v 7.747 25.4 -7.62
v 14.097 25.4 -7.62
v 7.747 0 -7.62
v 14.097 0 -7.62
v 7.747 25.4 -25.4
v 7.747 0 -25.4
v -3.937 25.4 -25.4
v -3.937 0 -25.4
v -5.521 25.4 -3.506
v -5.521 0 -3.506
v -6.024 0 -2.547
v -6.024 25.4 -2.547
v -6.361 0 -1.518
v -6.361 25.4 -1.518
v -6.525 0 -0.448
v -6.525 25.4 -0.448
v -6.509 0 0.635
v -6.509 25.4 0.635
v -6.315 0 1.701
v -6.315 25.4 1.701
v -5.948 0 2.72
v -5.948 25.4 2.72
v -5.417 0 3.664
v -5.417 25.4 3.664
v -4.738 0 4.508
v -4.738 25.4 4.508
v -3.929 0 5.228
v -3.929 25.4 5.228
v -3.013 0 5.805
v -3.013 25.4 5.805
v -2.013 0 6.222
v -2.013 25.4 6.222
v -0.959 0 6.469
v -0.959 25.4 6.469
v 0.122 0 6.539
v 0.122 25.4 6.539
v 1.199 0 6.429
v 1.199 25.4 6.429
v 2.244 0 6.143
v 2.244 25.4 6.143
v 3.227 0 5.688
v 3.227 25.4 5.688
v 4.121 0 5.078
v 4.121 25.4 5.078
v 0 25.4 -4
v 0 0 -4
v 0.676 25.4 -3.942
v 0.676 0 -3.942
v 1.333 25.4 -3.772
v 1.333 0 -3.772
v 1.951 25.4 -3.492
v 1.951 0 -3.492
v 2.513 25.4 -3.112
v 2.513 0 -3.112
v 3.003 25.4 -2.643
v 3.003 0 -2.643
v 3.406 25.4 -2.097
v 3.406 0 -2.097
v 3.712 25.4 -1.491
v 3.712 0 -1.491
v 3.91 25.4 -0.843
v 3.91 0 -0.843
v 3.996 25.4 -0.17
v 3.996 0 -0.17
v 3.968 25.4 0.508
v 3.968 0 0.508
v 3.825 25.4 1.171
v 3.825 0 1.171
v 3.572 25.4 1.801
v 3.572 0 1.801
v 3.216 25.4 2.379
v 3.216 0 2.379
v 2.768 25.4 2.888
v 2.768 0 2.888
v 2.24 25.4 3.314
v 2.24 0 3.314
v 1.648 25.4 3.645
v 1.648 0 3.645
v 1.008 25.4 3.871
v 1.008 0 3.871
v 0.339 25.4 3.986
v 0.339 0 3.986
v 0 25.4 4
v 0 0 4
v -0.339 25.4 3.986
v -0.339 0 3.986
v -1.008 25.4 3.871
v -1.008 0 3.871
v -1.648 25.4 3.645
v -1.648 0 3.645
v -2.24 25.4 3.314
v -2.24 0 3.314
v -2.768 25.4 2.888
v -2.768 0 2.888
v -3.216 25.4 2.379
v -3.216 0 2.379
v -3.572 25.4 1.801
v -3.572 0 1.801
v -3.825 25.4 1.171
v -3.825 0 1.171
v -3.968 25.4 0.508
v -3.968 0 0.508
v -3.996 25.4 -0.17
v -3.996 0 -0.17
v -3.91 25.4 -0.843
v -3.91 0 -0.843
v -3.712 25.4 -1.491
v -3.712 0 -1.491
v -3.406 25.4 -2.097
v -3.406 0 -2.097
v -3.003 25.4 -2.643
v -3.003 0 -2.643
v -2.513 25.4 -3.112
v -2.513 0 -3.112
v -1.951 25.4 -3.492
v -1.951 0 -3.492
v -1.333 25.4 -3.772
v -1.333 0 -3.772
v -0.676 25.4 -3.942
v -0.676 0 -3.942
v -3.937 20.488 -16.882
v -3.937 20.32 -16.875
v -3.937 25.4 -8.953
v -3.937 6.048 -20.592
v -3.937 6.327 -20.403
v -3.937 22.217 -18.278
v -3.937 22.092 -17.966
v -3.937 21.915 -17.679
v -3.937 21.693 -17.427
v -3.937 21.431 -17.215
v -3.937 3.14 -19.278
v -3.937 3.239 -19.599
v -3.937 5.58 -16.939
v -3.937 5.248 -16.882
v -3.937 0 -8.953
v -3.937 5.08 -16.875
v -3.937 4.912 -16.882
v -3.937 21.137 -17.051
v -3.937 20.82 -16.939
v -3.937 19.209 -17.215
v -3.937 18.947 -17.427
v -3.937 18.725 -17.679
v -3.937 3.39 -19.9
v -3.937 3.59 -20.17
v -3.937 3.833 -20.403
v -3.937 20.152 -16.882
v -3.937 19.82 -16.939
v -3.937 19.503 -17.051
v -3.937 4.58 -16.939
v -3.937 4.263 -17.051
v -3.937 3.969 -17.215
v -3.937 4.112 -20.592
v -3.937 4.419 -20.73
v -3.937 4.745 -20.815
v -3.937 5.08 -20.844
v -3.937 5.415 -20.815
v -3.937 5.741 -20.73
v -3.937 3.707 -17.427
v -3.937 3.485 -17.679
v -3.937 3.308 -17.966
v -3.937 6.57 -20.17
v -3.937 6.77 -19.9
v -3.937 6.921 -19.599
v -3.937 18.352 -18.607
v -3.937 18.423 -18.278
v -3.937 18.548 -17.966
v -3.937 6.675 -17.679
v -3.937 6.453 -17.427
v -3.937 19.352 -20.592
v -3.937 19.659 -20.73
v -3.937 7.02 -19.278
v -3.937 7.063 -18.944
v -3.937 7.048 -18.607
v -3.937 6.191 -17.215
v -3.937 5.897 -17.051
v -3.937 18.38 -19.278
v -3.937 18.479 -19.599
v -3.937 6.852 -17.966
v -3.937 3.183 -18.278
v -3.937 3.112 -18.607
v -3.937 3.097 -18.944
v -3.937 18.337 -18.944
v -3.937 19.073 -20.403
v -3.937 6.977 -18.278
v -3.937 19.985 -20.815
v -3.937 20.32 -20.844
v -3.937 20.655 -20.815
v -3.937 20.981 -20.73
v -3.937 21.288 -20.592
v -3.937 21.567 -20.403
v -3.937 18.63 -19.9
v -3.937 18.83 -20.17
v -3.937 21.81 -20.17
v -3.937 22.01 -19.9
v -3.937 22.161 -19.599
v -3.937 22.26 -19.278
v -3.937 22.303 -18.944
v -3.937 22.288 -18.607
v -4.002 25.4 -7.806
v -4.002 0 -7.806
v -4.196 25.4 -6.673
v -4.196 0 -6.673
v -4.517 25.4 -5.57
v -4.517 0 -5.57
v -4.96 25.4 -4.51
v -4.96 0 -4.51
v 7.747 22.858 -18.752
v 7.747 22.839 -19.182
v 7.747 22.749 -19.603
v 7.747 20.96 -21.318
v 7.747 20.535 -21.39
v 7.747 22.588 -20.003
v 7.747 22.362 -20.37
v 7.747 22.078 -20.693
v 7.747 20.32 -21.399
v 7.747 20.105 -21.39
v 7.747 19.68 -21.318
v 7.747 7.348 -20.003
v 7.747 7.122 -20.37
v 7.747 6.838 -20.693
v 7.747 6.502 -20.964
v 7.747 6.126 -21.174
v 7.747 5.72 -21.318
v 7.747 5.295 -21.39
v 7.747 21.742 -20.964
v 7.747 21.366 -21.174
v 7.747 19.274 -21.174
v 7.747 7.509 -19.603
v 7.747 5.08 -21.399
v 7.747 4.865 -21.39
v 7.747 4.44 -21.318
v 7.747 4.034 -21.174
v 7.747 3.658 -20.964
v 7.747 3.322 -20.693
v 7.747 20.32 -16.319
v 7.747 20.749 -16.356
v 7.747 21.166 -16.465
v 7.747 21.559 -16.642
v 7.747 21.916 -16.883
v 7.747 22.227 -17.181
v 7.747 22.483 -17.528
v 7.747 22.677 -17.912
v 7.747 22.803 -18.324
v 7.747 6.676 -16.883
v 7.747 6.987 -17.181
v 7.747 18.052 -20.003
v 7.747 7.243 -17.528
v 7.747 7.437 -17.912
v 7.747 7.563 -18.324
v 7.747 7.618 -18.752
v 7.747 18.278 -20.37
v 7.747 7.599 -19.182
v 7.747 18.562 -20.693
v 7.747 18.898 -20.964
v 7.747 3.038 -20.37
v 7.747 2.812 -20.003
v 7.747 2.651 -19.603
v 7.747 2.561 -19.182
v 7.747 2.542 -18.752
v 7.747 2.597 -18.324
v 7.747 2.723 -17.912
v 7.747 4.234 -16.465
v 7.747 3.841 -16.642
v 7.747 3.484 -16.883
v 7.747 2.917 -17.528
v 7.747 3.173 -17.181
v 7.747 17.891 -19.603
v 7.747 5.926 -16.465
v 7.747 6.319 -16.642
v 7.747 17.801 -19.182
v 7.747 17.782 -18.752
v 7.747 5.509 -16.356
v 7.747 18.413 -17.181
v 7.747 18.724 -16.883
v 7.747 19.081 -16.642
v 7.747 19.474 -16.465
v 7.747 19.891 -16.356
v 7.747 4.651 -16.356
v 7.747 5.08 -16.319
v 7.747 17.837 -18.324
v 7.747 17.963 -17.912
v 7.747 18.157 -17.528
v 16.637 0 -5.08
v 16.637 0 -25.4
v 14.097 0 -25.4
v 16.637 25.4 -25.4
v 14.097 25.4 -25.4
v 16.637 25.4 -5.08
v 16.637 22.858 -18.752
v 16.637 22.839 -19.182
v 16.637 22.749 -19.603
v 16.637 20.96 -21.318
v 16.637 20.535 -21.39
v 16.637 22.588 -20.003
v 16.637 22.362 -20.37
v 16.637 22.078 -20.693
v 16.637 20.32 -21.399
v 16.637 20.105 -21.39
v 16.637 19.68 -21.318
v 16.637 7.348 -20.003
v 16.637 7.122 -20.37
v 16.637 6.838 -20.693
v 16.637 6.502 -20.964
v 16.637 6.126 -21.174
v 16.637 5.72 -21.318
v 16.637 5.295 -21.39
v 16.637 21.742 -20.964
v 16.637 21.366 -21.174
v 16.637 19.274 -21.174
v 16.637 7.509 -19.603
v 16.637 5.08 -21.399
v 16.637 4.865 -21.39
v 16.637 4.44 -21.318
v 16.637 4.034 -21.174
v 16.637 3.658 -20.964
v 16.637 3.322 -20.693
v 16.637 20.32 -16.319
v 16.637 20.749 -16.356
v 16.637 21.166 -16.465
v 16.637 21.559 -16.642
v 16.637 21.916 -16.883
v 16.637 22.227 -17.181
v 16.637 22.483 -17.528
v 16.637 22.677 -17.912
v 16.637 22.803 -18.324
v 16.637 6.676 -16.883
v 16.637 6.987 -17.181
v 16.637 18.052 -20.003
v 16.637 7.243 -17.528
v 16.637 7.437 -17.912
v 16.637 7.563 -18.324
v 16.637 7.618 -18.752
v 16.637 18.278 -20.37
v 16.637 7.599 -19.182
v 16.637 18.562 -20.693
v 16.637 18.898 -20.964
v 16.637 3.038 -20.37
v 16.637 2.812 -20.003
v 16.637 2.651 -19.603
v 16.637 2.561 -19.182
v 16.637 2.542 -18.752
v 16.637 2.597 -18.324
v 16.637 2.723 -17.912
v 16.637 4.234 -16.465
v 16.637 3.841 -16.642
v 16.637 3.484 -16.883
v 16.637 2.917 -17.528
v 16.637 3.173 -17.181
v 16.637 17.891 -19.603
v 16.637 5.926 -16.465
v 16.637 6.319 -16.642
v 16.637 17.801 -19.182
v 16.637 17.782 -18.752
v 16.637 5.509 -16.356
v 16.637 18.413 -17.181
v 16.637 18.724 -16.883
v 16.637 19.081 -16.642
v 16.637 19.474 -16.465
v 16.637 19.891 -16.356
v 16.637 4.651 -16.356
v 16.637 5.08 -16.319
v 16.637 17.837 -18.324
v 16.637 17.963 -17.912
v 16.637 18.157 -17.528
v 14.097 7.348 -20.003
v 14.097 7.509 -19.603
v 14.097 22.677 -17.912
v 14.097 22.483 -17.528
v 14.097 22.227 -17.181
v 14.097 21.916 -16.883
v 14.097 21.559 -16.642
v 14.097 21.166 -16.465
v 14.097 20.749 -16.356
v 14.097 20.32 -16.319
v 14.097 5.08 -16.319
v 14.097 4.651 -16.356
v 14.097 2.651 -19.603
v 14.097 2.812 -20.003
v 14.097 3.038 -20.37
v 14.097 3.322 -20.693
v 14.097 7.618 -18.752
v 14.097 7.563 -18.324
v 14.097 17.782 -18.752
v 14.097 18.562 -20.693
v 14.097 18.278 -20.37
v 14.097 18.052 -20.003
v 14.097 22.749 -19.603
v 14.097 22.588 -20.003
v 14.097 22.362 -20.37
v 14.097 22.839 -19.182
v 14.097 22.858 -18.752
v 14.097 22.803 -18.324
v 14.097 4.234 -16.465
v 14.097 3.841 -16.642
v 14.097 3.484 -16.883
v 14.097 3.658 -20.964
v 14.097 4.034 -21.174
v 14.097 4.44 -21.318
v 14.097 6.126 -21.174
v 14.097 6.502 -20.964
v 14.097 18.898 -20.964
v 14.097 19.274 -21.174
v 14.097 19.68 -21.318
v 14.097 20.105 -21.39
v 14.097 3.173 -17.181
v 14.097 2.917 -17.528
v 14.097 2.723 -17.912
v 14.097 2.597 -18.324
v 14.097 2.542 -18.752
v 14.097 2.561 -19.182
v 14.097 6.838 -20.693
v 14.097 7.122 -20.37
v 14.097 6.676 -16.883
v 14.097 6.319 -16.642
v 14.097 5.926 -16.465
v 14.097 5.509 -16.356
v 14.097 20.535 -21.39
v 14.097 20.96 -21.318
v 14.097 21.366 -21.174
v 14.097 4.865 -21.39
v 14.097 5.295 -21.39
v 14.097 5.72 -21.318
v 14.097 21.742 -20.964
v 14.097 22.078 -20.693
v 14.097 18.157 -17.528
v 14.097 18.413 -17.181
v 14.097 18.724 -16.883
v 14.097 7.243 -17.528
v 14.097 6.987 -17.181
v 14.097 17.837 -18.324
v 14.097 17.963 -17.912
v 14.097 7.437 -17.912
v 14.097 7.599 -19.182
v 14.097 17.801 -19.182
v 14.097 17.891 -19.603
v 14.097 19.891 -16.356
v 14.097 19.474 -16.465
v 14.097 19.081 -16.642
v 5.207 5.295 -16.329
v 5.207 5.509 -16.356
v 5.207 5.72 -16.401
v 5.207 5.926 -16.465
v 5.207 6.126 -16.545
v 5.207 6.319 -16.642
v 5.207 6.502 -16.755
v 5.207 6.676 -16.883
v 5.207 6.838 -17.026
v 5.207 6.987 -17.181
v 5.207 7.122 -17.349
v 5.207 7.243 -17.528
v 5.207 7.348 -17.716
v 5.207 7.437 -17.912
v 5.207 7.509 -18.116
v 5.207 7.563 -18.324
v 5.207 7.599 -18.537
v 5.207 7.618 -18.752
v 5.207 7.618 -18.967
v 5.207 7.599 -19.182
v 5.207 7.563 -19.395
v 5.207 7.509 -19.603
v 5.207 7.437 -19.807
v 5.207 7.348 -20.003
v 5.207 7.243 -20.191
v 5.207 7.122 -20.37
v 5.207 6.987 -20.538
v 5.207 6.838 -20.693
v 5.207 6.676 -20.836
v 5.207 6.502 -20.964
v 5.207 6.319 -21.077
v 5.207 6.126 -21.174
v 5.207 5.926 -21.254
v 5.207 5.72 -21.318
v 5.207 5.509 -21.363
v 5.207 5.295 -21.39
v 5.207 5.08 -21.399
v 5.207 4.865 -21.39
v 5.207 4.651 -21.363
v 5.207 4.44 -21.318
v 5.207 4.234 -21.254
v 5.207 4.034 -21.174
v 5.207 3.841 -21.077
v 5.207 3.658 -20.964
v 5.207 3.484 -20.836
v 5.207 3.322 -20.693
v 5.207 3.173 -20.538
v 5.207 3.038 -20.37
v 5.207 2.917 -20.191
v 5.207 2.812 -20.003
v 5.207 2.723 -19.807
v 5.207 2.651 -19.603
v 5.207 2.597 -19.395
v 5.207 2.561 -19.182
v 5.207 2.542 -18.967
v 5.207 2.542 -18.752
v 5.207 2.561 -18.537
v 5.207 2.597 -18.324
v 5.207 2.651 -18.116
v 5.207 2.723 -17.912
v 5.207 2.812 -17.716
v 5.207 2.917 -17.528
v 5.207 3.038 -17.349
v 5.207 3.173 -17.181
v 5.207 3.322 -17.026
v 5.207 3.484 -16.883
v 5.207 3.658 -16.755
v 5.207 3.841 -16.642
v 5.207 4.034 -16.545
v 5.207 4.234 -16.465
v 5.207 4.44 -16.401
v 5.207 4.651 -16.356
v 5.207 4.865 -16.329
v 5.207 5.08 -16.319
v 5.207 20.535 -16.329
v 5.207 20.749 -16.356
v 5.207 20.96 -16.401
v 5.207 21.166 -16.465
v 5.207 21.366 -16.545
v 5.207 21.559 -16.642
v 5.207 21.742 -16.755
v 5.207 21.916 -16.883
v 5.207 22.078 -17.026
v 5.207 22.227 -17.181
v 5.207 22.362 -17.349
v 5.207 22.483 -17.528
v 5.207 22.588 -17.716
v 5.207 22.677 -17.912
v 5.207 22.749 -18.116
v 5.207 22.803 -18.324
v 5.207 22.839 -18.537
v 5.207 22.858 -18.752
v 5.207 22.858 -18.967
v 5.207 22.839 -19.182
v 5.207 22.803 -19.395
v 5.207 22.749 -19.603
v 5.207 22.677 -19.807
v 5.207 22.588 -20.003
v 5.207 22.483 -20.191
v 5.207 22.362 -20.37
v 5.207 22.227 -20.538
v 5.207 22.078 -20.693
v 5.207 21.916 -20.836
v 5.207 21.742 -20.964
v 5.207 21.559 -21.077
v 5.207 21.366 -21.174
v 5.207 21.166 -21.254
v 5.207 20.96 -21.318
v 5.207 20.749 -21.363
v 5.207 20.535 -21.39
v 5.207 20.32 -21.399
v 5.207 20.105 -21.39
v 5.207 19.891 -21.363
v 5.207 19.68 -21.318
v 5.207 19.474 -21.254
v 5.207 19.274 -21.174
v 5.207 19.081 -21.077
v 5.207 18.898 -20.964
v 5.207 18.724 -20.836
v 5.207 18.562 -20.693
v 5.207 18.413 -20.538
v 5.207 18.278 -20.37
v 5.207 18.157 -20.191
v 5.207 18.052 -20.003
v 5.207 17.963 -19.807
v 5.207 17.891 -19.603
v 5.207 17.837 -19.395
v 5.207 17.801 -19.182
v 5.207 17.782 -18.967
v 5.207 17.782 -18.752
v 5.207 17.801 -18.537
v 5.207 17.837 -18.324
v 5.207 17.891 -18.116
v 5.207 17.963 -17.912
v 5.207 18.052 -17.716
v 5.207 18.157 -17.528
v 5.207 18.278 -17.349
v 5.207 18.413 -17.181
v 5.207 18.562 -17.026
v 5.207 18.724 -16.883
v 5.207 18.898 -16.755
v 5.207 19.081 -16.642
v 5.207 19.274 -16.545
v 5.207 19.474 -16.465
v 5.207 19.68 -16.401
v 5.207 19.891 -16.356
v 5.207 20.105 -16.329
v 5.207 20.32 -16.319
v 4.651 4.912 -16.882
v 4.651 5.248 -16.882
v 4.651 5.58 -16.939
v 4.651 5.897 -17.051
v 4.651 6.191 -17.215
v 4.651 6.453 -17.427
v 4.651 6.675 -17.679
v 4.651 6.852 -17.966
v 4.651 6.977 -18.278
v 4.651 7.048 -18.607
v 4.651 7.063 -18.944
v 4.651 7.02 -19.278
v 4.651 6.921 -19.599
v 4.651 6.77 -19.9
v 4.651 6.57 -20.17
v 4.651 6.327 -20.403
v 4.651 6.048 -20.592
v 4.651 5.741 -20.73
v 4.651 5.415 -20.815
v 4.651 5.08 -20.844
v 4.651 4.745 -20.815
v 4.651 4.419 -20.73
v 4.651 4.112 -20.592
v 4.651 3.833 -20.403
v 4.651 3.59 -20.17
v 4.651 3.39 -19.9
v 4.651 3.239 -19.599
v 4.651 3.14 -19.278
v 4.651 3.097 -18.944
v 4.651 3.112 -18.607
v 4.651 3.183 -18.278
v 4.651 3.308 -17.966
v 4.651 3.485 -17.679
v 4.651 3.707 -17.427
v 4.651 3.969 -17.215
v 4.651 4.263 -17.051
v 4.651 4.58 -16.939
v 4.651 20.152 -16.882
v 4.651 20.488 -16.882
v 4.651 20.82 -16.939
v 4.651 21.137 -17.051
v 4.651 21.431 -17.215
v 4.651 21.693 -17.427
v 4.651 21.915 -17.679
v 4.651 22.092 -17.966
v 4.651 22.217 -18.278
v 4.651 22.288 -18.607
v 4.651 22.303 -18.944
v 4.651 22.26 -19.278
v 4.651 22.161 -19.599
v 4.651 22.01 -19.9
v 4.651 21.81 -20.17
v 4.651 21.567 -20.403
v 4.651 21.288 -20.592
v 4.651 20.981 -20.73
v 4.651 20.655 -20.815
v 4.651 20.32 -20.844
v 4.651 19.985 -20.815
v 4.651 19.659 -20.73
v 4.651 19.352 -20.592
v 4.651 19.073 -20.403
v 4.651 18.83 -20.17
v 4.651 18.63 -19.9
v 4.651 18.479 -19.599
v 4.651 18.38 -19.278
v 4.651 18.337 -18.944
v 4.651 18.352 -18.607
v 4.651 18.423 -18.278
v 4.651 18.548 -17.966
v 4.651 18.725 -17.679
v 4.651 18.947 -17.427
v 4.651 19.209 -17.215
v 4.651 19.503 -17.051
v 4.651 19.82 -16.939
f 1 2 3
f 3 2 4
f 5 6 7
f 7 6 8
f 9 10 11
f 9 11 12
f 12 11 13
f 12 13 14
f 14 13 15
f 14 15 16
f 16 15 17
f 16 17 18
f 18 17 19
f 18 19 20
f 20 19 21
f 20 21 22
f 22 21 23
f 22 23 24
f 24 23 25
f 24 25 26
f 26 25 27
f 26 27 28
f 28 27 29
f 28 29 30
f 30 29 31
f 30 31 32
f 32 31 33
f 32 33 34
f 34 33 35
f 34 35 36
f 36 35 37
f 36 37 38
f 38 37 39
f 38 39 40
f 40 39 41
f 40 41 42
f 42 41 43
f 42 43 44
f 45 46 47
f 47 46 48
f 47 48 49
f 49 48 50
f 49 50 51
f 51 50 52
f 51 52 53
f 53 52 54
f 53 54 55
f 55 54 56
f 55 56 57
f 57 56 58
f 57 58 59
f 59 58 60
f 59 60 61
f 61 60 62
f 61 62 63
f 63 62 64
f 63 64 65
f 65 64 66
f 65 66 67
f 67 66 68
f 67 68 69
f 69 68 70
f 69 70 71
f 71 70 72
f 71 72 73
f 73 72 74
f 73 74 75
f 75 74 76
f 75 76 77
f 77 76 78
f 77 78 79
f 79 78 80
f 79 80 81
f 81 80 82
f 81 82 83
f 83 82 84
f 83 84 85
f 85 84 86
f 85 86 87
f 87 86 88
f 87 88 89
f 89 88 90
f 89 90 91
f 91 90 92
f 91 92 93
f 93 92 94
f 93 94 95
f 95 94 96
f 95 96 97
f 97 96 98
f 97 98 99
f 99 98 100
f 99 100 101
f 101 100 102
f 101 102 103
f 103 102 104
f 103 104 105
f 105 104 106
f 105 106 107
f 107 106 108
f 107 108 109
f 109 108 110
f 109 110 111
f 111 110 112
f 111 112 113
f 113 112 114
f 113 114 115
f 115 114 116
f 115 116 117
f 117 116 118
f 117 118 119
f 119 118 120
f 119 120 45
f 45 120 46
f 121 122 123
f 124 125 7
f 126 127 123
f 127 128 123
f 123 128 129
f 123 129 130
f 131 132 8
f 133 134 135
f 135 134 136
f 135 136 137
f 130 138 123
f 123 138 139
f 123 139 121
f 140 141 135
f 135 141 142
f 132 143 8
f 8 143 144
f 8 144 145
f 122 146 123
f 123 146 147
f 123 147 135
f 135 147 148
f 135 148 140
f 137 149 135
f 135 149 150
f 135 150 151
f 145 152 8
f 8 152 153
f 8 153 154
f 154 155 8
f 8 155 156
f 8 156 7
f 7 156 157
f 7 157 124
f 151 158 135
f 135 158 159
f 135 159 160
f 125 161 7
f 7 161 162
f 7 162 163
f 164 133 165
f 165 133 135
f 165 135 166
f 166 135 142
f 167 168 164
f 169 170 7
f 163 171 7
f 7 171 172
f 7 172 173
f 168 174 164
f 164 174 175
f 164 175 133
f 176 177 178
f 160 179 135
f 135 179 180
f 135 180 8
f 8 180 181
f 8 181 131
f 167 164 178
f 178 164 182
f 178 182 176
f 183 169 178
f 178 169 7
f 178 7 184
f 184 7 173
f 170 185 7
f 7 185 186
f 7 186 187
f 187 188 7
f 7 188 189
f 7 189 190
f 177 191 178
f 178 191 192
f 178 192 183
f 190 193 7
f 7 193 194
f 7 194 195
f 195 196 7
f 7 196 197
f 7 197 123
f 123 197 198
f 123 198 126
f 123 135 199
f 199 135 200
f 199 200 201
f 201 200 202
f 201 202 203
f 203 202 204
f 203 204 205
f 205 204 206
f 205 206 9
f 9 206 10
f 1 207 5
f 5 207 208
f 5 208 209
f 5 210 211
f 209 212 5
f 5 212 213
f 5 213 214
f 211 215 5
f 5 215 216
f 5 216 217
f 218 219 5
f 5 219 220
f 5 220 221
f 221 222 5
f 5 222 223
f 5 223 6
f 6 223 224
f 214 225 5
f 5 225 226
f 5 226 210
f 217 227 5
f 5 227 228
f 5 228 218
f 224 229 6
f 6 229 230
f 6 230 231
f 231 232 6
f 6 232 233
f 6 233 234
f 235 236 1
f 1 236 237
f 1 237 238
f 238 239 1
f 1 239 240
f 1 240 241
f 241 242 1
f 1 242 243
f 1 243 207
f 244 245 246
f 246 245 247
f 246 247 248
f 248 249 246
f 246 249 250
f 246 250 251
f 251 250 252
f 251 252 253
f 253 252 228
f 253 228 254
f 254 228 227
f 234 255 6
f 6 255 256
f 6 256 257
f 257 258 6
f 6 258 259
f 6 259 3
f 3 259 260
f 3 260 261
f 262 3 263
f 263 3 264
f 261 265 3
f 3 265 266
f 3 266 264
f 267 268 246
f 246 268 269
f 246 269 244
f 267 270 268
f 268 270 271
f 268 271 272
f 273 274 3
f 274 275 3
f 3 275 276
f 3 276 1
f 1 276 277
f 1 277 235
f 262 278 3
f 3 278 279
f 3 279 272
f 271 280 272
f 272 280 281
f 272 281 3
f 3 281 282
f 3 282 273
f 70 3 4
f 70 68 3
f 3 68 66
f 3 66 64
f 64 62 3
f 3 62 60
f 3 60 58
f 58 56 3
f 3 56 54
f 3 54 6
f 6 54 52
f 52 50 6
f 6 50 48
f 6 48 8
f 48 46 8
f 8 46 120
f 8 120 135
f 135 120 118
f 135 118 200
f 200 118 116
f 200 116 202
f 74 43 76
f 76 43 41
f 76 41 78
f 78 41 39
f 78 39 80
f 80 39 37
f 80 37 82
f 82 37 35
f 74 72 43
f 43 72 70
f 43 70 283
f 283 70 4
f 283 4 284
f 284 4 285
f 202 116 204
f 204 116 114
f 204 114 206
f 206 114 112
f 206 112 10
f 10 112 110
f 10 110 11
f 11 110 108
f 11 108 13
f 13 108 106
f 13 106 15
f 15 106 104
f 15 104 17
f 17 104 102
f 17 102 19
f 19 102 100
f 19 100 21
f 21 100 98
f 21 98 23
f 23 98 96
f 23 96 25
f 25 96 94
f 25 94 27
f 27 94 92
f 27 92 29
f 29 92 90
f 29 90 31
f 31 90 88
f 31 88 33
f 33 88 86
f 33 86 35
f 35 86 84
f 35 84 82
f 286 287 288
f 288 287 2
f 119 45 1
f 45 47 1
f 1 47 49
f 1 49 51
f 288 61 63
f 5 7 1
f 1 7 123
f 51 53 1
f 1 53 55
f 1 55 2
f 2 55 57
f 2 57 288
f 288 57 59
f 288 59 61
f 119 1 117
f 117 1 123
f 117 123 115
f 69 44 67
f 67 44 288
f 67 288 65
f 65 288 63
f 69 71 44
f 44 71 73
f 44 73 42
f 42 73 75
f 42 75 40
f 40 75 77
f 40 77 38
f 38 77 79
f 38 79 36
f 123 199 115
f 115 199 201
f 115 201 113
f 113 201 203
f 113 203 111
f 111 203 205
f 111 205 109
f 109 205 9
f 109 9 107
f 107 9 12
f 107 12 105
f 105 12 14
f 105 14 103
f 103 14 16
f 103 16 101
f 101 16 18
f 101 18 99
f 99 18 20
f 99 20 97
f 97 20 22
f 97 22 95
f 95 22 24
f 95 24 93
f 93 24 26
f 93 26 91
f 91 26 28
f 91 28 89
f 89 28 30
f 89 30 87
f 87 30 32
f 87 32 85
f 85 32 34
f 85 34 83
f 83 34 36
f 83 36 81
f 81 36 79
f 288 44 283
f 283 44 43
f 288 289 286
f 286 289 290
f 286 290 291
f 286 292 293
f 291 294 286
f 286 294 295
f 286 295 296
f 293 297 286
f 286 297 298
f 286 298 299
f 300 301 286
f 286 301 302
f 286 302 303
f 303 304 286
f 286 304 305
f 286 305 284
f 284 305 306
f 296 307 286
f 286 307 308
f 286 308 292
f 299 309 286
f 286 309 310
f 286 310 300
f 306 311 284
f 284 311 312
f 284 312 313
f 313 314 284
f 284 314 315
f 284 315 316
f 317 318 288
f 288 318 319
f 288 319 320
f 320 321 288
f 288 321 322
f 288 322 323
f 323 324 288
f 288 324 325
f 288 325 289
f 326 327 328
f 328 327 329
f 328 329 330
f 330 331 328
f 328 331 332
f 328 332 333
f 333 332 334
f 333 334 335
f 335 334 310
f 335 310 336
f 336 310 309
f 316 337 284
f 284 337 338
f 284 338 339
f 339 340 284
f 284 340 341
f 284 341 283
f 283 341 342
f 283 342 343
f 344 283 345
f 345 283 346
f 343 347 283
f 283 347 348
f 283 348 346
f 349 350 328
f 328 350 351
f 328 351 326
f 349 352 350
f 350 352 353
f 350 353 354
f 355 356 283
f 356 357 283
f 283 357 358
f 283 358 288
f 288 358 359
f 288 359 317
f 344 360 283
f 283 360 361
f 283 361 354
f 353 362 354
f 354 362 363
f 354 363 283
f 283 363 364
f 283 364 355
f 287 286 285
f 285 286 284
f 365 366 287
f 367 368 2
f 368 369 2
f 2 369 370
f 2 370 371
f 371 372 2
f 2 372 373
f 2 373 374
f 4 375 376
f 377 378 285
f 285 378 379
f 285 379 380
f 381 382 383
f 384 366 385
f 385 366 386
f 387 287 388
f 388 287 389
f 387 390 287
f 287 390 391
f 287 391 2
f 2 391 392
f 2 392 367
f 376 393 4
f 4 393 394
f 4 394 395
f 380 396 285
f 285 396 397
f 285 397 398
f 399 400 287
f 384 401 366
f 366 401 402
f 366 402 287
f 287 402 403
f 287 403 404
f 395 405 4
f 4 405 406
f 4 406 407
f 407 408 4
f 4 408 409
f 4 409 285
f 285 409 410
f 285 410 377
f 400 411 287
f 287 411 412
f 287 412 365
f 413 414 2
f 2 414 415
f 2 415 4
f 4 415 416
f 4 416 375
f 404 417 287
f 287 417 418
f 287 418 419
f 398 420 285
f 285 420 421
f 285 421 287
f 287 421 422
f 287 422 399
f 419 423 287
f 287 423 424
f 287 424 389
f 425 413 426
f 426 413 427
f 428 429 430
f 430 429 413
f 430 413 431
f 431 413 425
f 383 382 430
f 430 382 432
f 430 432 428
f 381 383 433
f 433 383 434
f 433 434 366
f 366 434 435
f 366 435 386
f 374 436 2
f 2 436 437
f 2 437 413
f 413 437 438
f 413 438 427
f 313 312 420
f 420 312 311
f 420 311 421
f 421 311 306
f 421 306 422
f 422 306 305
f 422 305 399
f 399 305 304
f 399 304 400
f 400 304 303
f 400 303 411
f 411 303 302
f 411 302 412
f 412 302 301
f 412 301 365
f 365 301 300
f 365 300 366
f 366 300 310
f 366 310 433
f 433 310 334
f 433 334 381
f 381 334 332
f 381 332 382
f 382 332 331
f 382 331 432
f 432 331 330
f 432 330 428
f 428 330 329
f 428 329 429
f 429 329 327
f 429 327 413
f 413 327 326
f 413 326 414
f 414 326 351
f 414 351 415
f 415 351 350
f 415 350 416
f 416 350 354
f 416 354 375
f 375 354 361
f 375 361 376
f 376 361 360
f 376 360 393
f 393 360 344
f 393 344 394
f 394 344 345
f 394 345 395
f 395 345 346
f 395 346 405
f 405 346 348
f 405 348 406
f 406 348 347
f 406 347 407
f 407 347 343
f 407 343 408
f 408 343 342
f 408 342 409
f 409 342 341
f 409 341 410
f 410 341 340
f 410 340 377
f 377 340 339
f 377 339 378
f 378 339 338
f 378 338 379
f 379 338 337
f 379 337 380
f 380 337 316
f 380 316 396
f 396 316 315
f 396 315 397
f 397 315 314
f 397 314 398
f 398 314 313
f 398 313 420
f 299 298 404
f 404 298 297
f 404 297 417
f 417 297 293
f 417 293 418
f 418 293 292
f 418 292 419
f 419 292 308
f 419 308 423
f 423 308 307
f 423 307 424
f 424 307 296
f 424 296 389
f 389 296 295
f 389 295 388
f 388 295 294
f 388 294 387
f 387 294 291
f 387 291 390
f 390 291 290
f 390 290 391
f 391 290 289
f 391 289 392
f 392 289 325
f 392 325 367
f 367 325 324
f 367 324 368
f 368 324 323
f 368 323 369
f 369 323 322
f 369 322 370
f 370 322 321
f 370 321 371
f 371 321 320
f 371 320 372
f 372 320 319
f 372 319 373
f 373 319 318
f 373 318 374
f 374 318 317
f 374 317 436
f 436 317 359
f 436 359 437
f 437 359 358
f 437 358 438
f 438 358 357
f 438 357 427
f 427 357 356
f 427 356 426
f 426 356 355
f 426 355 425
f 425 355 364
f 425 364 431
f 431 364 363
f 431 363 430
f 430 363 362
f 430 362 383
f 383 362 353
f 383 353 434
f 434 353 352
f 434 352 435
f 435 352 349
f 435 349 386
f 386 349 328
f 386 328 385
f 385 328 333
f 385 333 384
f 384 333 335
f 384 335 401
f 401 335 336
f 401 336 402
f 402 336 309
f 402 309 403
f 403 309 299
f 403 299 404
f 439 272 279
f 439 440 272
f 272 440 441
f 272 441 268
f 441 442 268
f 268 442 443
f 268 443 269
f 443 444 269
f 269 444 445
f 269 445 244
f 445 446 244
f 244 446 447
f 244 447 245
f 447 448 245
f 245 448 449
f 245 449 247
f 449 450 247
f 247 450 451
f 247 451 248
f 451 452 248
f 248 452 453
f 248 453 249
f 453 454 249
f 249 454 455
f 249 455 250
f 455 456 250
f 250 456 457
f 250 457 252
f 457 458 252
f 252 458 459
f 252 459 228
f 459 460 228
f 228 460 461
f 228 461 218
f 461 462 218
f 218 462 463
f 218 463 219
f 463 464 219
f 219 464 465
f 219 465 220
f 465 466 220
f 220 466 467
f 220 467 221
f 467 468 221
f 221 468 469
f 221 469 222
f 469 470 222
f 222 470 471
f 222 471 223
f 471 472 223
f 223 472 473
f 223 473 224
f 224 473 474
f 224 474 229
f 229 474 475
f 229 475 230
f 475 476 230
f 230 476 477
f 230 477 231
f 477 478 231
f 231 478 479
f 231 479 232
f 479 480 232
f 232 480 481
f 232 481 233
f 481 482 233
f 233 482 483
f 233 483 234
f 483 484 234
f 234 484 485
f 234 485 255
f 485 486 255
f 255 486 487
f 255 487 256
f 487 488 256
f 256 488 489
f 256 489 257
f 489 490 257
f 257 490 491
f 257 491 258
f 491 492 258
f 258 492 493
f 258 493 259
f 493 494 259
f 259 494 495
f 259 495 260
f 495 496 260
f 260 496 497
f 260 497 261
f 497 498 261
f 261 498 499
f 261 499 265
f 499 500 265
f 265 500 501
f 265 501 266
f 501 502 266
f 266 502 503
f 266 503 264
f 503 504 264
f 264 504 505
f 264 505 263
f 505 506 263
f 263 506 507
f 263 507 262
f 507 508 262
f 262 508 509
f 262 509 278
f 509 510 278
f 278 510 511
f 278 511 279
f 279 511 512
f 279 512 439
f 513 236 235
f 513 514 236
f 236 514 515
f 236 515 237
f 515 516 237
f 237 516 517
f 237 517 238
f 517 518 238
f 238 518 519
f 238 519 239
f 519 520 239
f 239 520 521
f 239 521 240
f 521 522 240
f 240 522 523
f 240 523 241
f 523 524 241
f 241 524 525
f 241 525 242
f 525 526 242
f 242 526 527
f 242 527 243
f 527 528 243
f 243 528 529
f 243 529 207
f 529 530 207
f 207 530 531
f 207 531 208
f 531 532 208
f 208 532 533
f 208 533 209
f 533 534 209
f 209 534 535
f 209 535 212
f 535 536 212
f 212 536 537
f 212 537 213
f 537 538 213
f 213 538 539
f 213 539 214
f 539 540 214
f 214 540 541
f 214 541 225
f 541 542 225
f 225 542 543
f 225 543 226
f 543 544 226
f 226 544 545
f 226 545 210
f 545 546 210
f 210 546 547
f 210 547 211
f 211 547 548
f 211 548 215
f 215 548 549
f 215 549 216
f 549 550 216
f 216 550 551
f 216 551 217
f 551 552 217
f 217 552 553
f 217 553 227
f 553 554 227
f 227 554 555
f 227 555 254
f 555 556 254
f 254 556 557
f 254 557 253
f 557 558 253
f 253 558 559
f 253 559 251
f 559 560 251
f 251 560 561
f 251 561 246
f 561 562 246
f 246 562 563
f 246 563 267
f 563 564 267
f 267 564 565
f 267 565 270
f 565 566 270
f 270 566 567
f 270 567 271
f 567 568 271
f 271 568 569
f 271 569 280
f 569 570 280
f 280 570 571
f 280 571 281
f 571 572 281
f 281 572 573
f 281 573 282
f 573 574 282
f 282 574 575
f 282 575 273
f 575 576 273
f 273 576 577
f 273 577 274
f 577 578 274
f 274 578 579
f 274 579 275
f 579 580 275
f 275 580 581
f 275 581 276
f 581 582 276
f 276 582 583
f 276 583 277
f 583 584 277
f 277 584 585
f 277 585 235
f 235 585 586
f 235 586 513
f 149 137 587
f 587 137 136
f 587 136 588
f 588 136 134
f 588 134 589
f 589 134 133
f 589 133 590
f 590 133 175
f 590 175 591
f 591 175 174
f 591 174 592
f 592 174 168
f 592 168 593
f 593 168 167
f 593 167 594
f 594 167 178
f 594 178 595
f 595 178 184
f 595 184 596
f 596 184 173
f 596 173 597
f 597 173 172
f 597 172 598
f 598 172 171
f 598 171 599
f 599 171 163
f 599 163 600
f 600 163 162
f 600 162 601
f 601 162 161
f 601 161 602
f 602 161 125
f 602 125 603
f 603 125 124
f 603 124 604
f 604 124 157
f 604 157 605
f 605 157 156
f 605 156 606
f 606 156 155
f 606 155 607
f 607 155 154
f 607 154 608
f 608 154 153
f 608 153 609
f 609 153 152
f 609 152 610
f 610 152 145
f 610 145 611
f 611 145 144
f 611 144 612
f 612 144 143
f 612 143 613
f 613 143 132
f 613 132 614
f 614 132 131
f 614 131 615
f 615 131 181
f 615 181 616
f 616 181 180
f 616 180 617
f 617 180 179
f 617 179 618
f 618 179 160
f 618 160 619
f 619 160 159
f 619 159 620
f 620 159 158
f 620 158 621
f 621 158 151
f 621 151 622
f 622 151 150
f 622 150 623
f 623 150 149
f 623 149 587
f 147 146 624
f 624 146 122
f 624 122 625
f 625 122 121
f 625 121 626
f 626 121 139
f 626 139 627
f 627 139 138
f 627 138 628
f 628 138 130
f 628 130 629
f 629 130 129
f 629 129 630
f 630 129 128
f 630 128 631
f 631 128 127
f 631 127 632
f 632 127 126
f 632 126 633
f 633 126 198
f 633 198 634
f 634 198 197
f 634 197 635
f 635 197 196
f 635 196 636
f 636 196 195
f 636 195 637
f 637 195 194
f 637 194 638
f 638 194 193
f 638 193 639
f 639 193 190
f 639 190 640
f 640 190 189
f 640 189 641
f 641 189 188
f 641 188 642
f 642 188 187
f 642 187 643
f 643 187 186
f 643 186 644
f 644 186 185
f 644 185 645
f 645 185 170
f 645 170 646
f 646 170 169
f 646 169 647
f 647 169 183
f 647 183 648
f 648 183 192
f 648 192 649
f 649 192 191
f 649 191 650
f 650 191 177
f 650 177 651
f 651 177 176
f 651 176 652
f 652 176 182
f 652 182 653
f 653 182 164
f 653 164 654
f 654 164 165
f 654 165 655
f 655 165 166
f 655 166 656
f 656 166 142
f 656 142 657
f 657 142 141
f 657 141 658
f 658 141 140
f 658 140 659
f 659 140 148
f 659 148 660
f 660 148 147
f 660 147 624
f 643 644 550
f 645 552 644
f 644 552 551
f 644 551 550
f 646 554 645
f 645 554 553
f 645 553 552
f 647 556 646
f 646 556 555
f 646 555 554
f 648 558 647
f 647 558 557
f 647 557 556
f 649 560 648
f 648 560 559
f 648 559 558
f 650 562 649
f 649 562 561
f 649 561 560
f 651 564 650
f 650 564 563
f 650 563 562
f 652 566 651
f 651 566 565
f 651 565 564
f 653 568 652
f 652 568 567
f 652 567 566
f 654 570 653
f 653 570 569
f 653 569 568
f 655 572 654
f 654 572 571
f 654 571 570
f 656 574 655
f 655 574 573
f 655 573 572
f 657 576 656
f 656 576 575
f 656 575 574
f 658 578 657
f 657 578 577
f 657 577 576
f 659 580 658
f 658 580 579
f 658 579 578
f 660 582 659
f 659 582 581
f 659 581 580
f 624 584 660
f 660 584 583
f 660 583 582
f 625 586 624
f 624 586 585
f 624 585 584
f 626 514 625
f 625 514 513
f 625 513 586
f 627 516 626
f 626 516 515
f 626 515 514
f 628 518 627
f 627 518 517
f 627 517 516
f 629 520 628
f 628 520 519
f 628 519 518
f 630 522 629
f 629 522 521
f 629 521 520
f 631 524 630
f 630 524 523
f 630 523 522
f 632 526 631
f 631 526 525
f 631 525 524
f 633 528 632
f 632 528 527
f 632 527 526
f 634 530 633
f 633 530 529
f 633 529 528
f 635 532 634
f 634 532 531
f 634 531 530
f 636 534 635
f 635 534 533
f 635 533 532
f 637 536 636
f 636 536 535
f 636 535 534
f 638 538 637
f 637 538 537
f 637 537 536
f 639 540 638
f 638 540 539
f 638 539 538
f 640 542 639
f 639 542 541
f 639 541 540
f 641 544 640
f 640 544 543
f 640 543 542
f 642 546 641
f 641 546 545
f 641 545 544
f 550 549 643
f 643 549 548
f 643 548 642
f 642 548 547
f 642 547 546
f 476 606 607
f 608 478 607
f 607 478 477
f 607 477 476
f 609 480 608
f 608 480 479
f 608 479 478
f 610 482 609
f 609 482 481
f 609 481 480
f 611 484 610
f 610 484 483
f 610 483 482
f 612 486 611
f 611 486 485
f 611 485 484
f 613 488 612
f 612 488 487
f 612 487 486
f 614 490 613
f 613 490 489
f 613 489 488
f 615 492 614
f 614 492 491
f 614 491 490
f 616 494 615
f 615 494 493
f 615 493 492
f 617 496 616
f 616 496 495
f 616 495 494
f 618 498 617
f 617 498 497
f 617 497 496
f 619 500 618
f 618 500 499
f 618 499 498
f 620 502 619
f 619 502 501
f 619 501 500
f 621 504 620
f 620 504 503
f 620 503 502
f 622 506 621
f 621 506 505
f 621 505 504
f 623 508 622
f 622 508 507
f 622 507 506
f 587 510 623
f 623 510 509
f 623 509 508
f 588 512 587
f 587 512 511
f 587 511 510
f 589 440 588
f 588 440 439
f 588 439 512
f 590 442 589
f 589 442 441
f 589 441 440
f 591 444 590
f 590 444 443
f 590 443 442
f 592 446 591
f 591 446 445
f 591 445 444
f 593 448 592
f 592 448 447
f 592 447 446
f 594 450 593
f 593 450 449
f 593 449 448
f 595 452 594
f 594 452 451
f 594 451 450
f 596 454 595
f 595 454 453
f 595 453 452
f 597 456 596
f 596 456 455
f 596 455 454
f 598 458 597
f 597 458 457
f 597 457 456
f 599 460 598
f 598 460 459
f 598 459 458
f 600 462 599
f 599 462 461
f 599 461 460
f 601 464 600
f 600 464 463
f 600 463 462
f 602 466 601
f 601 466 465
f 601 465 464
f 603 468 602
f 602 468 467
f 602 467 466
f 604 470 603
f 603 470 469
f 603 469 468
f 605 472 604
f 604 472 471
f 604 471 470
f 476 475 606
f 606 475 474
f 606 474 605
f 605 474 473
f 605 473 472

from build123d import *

# Parameters (mm, degrees)
SKETCH1_R           = 4
BOSS_EXTRUDE1_DEPTH = 25.4
SKETCH2_R           = 2.54
CUT_EXTRUDE1_DEPTH  = 39.1
SKETCH4_R           = 1.984375
CUT_EXTRUDE3_DEPTH  = 39.1
CHAMFER1_SIZE       = 1.27


with BuildPart() as part:
    # Sketch1 → Boss-Extrude1 (new body)
    with BuildSketch(Plane(origin=(0, 0, 0), x_dir=(1, 0, 0), z_dir=(0, 1, 0))):
        with BuildLine():
            Line((-3.937, 25.4), (-3.937, 8.953468099))
            ThreePointArc((-3.937, 8.953468099), (-4.340935092, 6.117132874), (-5.520621557, 3.506328226))
            ThreePointArc((-5.520621557, 3.506328226), (-4.348789534, -4.884631981), (4.121395045, -5.077962473))
            Line((4.121395045, -5.077962473), (16.637, 5.08))
            Line((16.637, 5.08), (16.637, 25.4))
            Line((16.637, 25.4), (14.097, 25.4))
            Line((14.097, 25.4), (14.097, 7.62))
            Line((14.097, 7.62), (7.747, 7.62))
            Line((7.747, 7.62), (7.747, 25.4))
            Line((7.747, 25.4), (-3.937, 25.4))
        make_face()
        with Locations(Location((0, 0, 0), (0, 0, 270))):
            Circle(SKETCH1_R, mode=Mode.SUBTRACT)
    extrude(amount=BOSS_EXTRUDE1_DEPTH)

    # Sketch2 → Cut-Extrude1 (cut, through all)
    with BuildSketch(Plane(origin=(3.937, 0, 0), x_dir=(0, 0, -1), z_dir=(1, 0, 0))):
        with Locations(Location((18.859468099, 20.32, 0), (0, 0, 180))):
            Circle(SKETCH2_R)
        with Locations(Location((18.859468099, 5.08, 0), (0, 0, 180))):
            Circle(SKETCH2_R)
    extrude(amount=CUT_EXTRUDE1_DEPTH, mode=Mode.SUBTRACT)

    # Sketch4 → Cut-Extrude3 (cut, through all)
    with BuildSketch(Plane(origin=(3.937, 0, 0), x_dir=(0, 0, -1), z_dir=(1, 0, 0))):
        with Locations((18.859468099, 20.32)):
            Circle(SKETCH4_R)
        with Locations((18.859468099, 5.08)):
            Circle(SKETCH4_R)
    extrude(amount=-CUT_EXTRUDE3_DEPTH, mode=Mode.SUBTRACT)

    # Chamfer1
    # the kernel refuses this chamfer: 1.27 mm, written as the material it adds along each edge
    with BuildSketch(Plane(origin=(3.937, 20.32, -18.859468099), x_dir=(0, 0, 1), z_dir=(0, 1, 0))) as chamfer1_piece_1_section:
        Polygon((2.54 - CHAMFER1_SIZE, 0), (2.54, CHAMFER1_SIZE), (2.54, 0), align=None)
    chamfer1_piece_1 = revolve(axis=Axis((3.937, 20.32, -18.859468099), (1, 0, 0)), mode=Mode.PRIVATE)
    chamfer1_piece_1 = chamfer1_piece_1 - Plane(origin=(4.932574819, 20.32, -18.859468099), x_dir=(0, 0, -1), z_dir=(1, 0, 0)) * Cylinder(1.984375, 11, mode=Mode.PRIVATE)
    add(chamfer1_piece_1)
    with BuildSketch(Plane(origin=(3.937, 5.08, -18.859468099), x_dir=(0, 0, 1), z_dir=(0, 1, 0))) as chamfer1_piece_2_section:
        Polygon((2.54 - CHAMFER1_SIZE, 0), (2.54, CHAMFER1_SIZE), (2.54, 0), align=None)
    chamfer1_piece_2 = revolve(axis=Axis((3.937, 5.08, -18.859468099), (1, 0, 0)), mode=Mode.PRIVATE)
    chamfer1_piece_2 = chamfer1_piece_2 - Plane(origin=(4.932574819, 5.08, -18.859468099), x_dir=(0, 0, -1), z_dir=(1, 0, 0)) * Cylinder(1.984375, 11, mode=Mode.PRIVATE)
    add(chamfer1_piece_2)


solid = part.part
